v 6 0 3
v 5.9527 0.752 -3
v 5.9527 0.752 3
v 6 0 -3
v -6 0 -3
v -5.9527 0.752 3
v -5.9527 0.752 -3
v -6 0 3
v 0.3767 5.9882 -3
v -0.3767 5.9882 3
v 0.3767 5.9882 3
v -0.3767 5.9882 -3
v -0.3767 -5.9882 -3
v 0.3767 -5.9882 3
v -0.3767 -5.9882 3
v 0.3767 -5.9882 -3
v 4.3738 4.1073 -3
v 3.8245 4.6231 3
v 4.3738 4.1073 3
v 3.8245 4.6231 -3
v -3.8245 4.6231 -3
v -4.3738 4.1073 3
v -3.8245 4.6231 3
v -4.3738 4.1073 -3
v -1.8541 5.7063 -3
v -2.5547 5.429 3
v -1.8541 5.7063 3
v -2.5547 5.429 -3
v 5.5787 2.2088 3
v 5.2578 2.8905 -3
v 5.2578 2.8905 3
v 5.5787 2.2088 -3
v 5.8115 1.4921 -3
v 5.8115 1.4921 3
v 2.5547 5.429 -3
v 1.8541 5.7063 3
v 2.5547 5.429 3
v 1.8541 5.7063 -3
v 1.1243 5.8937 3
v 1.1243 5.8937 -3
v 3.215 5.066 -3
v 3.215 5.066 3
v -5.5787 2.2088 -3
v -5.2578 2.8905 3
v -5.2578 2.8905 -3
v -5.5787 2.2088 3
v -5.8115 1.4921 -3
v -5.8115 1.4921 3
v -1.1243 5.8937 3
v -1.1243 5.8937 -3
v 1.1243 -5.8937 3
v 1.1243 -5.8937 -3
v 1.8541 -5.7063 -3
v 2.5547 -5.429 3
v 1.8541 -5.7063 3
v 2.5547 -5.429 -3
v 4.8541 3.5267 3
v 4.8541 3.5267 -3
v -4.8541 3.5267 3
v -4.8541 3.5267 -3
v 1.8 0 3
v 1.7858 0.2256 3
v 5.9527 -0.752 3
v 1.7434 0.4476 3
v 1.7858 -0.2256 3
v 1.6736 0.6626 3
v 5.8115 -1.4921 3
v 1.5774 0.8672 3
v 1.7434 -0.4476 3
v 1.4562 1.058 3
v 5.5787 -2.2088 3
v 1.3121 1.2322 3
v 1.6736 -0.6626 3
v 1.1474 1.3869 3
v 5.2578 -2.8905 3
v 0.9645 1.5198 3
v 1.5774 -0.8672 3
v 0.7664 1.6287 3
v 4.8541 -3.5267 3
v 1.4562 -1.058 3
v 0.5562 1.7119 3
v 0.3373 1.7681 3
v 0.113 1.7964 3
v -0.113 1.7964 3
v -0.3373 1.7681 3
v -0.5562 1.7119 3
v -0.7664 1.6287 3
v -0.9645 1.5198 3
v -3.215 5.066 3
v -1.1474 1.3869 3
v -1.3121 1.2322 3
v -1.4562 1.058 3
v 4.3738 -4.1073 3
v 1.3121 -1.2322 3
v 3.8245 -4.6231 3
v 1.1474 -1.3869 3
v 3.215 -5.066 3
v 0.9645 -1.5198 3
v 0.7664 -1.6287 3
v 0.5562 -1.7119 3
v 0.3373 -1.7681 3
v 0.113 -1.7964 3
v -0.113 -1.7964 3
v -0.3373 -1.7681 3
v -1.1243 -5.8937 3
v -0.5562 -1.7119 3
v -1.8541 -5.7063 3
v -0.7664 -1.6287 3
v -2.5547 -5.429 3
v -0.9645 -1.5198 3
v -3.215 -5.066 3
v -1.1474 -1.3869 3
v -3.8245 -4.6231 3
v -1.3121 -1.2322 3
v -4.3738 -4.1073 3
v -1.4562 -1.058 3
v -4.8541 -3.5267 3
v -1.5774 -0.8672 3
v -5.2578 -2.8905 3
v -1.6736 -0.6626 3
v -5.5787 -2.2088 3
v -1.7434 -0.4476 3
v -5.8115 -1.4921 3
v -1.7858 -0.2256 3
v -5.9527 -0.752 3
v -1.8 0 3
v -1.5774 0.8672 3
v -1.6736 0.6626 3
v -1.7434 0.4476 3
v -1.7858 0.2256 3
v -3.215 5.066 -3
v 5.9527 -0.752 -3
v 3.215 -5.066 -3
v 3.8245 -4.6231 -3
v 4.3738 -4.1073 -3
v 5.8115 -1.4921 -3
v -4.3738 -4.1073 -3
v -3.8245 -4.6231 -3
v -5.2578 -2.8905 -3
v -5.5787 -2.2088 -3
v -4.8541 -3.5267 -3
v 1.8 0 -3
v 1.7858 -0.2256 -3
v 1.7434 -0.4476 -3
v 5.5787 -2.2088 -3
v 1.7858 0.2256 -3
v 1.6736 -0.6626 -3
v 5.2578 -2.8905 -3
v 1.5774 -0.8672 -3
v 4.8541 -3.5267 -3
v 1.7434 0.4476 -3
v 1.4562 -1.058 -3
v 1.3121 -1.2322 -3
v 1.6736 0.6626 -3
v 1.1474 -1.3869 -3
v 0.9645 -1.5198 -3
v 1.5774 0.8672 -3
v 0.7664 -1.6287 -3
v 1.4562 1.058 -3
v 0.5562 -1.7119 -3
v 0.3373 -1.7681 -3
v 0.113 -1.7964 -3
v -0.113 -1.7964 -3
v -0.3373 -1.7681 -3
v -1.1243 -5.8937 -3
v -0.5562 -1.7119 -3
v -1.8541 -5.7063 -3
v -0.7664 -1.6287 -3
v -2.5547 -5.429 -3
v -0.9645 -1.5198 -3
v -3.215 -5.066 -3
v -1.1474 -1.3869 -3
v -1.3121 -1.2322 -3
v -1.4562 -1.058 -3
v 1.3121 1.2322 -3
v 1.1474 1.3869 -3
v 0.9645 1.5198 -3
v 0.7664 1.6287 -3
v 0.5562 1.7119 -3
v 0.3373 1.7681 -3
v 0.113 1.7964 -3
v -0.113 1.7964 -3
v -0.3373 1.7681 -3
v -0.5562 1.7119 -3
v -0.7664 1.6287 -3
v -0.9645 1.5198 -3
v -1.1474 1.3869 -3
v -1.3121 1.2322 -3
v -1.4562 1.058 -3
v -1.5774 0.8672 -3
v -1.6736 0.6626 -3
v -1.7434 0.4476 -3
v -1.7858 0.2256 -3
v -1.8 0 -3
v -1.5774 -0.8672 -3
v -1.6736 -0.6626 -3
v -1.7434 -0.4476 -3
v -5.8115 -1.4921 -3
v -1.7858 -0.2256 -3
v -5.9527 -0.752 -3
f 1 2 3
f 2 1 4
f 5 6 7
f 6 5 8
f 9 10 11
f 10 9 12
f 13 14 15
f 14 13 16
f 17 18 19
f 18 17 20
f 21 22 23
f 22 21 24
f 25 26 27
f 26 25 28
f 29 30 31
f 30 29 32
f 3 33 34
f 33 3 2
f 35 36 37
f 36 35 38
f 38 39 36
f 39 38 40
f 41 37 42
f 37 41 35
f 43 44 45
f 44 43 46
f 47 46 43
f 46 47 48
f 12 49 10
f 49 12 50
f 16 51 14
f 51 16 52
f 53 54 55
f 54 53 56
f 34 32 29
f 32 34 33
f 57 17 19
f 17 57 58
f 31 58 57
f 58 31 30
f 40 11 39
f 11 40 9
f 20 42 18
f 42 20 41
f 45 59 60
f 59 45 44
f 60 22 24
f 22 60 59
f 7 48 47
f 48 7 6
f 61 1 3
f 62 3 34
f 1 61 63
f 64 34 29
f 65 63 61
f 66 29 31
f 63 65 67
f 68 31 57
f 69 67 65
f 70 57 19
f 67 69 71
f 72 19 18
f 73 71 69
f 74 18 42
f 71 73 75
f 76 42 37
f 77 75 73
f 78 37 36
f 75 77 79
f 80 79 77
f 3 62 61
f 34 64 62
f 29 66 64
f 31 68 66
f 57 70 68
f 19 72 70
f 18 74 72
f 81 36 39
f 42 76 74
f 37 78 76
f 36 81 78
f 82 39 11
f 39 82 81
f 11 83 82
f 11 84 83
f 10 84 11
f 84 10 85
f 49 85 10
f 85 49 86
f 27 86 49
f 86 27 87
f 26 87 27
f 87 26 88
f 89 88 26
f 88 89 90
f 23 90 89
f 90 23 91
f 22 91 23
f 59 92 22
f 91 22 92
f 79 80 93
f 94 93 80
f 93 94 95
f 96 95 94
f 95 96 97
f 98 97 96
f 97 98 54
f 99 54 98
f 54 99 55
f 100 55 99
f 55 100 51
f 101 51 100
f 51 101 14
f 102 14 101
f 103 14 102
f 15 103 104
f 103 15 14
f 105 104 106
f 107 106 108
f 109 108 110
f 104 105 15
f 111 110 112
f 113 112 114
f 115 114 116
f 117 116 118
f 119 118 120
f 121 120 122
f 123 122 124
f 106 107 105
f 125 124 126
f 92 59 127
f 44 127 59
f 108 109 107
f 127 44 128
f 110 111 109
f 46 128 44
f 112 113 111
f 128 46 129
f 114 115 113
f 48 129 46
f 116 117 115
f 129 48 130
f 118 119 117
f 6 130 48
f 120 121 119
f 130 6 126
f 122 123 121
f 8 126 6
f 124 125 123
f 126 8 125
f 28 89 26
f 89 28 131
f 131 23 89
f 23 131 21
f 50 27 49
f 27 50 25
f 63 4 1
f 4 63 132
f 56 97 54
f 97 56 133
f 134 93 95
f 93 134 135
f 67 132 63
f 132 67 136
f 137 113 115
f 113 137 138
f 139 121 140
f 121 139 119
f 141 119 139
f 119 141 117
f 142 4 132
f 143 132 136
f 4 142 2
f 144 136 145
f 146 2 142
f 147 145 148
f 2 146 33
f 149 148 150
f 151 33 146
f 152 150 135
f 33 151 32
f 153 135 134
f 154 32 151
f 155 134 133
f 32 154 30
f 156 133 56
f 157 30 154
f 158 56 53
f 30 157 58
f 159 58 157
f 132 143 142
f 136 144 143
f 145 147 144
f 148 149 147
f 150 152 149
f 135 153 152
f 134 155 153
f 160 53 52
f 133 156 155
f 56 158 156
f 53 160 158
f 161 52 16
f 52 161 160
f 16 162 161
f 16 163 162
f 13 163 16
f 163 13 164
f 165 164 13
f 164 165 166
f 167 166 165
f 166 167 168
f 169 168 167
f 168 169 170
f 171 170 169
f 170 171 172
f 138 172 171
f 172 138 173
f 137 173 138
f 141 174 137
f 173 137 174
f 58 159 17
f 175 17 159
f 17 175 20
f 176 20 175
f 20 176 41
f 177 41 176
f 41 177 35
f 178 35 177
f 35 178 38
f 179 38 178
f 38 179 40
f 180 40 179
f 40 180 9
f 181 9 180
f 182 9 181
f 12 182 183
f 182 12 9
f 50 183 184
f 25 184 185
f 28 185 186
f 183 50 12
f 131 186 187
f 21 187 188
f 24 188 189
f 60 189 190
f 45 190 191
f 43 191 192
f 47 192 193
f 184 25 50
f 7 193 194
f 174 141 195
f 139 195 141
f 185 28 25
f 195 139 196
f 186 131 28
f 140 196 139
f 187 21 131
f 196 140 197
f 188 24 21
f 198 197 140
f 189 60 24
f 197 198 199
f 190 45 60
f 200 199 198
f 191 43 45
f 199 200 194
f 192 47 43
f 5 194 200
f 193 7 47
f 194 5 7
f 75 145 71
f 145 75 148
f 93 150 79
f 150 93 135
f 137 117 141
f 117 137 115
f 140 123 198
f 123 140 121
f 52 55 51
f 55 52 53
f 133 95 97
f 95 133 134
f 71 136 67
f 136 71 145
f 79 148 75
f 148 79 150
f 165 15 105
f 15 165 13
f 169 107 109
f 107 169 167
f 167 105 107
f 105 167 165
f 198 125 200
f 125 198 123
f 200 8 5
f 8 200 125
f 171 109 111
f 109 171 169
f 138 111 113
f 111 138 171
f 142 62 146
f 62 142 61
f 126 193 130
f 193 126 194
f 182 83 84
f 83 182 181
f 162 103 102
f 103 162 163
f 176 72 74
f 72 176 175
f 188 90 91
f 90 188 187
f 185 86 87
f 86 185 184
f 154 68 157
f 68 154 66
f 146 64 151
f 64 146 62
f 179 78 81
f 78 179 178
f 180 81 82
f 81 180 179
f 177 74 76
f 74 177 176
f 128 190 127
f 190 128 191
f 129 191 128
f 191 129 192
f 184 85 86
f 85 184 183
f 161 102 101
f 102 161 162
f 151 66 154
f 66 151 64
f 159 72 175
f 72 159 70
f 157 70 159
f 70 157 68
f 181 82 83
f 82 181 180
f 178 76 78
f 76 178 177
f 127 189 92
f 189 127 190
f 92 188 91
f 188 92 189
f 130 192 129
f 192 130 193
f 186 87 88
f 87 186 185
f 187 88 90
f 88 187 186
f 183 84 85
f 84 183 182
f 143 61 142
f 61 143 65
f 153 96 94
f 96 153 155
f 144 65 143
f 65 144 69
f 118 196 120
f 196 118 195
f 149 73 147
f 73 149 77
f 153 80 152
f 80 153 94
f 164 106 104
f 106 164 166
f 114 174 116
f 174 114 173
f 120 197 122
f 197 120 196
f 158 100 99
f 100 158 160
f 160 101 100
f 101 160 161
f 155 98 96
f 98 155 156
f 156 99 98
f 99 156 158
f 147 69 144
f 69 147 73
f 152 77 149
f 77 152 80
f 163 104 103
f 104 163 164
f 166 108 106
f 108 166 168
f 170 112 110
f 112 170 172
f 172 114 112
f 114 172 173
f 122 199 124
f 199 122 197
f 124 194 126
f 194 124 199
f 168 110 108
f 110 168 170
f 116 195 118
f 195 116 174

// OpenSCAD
$fn = 50;


difference() {
	union() {
		translate(v = [0, 0, -3.0000000000]) {
			cylinder(h = 6, r = 6.0000000000);
		}
	}
	union() {
		translate(v = [0, 0, -100.0000000000]) {
			cylinder(h = 200, r = 1.8000000000);
		}
	}
}
